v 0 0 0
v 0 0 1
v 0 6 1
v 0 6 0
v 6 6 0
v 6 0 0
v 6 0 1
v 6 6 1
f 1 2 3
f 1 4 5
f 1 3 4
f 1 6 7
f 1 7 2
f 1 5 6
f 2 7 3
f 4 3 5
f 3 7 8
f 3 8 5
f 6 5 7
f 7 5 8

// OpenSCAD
/* Warning, this is a very basic generator with a lot of approximation 
input data : [VQFN, M7C, 6x6x1mm, 40, , A, C04-25404A]
generated by com.zoubworld.electronics.cad.model3d.Basic
Date : Sun Feb 15 10:50:49 CET 2026
*/

//body
color("black")
translate([0,0,0])
cube([6.0,6.0,1.0], center=false);
